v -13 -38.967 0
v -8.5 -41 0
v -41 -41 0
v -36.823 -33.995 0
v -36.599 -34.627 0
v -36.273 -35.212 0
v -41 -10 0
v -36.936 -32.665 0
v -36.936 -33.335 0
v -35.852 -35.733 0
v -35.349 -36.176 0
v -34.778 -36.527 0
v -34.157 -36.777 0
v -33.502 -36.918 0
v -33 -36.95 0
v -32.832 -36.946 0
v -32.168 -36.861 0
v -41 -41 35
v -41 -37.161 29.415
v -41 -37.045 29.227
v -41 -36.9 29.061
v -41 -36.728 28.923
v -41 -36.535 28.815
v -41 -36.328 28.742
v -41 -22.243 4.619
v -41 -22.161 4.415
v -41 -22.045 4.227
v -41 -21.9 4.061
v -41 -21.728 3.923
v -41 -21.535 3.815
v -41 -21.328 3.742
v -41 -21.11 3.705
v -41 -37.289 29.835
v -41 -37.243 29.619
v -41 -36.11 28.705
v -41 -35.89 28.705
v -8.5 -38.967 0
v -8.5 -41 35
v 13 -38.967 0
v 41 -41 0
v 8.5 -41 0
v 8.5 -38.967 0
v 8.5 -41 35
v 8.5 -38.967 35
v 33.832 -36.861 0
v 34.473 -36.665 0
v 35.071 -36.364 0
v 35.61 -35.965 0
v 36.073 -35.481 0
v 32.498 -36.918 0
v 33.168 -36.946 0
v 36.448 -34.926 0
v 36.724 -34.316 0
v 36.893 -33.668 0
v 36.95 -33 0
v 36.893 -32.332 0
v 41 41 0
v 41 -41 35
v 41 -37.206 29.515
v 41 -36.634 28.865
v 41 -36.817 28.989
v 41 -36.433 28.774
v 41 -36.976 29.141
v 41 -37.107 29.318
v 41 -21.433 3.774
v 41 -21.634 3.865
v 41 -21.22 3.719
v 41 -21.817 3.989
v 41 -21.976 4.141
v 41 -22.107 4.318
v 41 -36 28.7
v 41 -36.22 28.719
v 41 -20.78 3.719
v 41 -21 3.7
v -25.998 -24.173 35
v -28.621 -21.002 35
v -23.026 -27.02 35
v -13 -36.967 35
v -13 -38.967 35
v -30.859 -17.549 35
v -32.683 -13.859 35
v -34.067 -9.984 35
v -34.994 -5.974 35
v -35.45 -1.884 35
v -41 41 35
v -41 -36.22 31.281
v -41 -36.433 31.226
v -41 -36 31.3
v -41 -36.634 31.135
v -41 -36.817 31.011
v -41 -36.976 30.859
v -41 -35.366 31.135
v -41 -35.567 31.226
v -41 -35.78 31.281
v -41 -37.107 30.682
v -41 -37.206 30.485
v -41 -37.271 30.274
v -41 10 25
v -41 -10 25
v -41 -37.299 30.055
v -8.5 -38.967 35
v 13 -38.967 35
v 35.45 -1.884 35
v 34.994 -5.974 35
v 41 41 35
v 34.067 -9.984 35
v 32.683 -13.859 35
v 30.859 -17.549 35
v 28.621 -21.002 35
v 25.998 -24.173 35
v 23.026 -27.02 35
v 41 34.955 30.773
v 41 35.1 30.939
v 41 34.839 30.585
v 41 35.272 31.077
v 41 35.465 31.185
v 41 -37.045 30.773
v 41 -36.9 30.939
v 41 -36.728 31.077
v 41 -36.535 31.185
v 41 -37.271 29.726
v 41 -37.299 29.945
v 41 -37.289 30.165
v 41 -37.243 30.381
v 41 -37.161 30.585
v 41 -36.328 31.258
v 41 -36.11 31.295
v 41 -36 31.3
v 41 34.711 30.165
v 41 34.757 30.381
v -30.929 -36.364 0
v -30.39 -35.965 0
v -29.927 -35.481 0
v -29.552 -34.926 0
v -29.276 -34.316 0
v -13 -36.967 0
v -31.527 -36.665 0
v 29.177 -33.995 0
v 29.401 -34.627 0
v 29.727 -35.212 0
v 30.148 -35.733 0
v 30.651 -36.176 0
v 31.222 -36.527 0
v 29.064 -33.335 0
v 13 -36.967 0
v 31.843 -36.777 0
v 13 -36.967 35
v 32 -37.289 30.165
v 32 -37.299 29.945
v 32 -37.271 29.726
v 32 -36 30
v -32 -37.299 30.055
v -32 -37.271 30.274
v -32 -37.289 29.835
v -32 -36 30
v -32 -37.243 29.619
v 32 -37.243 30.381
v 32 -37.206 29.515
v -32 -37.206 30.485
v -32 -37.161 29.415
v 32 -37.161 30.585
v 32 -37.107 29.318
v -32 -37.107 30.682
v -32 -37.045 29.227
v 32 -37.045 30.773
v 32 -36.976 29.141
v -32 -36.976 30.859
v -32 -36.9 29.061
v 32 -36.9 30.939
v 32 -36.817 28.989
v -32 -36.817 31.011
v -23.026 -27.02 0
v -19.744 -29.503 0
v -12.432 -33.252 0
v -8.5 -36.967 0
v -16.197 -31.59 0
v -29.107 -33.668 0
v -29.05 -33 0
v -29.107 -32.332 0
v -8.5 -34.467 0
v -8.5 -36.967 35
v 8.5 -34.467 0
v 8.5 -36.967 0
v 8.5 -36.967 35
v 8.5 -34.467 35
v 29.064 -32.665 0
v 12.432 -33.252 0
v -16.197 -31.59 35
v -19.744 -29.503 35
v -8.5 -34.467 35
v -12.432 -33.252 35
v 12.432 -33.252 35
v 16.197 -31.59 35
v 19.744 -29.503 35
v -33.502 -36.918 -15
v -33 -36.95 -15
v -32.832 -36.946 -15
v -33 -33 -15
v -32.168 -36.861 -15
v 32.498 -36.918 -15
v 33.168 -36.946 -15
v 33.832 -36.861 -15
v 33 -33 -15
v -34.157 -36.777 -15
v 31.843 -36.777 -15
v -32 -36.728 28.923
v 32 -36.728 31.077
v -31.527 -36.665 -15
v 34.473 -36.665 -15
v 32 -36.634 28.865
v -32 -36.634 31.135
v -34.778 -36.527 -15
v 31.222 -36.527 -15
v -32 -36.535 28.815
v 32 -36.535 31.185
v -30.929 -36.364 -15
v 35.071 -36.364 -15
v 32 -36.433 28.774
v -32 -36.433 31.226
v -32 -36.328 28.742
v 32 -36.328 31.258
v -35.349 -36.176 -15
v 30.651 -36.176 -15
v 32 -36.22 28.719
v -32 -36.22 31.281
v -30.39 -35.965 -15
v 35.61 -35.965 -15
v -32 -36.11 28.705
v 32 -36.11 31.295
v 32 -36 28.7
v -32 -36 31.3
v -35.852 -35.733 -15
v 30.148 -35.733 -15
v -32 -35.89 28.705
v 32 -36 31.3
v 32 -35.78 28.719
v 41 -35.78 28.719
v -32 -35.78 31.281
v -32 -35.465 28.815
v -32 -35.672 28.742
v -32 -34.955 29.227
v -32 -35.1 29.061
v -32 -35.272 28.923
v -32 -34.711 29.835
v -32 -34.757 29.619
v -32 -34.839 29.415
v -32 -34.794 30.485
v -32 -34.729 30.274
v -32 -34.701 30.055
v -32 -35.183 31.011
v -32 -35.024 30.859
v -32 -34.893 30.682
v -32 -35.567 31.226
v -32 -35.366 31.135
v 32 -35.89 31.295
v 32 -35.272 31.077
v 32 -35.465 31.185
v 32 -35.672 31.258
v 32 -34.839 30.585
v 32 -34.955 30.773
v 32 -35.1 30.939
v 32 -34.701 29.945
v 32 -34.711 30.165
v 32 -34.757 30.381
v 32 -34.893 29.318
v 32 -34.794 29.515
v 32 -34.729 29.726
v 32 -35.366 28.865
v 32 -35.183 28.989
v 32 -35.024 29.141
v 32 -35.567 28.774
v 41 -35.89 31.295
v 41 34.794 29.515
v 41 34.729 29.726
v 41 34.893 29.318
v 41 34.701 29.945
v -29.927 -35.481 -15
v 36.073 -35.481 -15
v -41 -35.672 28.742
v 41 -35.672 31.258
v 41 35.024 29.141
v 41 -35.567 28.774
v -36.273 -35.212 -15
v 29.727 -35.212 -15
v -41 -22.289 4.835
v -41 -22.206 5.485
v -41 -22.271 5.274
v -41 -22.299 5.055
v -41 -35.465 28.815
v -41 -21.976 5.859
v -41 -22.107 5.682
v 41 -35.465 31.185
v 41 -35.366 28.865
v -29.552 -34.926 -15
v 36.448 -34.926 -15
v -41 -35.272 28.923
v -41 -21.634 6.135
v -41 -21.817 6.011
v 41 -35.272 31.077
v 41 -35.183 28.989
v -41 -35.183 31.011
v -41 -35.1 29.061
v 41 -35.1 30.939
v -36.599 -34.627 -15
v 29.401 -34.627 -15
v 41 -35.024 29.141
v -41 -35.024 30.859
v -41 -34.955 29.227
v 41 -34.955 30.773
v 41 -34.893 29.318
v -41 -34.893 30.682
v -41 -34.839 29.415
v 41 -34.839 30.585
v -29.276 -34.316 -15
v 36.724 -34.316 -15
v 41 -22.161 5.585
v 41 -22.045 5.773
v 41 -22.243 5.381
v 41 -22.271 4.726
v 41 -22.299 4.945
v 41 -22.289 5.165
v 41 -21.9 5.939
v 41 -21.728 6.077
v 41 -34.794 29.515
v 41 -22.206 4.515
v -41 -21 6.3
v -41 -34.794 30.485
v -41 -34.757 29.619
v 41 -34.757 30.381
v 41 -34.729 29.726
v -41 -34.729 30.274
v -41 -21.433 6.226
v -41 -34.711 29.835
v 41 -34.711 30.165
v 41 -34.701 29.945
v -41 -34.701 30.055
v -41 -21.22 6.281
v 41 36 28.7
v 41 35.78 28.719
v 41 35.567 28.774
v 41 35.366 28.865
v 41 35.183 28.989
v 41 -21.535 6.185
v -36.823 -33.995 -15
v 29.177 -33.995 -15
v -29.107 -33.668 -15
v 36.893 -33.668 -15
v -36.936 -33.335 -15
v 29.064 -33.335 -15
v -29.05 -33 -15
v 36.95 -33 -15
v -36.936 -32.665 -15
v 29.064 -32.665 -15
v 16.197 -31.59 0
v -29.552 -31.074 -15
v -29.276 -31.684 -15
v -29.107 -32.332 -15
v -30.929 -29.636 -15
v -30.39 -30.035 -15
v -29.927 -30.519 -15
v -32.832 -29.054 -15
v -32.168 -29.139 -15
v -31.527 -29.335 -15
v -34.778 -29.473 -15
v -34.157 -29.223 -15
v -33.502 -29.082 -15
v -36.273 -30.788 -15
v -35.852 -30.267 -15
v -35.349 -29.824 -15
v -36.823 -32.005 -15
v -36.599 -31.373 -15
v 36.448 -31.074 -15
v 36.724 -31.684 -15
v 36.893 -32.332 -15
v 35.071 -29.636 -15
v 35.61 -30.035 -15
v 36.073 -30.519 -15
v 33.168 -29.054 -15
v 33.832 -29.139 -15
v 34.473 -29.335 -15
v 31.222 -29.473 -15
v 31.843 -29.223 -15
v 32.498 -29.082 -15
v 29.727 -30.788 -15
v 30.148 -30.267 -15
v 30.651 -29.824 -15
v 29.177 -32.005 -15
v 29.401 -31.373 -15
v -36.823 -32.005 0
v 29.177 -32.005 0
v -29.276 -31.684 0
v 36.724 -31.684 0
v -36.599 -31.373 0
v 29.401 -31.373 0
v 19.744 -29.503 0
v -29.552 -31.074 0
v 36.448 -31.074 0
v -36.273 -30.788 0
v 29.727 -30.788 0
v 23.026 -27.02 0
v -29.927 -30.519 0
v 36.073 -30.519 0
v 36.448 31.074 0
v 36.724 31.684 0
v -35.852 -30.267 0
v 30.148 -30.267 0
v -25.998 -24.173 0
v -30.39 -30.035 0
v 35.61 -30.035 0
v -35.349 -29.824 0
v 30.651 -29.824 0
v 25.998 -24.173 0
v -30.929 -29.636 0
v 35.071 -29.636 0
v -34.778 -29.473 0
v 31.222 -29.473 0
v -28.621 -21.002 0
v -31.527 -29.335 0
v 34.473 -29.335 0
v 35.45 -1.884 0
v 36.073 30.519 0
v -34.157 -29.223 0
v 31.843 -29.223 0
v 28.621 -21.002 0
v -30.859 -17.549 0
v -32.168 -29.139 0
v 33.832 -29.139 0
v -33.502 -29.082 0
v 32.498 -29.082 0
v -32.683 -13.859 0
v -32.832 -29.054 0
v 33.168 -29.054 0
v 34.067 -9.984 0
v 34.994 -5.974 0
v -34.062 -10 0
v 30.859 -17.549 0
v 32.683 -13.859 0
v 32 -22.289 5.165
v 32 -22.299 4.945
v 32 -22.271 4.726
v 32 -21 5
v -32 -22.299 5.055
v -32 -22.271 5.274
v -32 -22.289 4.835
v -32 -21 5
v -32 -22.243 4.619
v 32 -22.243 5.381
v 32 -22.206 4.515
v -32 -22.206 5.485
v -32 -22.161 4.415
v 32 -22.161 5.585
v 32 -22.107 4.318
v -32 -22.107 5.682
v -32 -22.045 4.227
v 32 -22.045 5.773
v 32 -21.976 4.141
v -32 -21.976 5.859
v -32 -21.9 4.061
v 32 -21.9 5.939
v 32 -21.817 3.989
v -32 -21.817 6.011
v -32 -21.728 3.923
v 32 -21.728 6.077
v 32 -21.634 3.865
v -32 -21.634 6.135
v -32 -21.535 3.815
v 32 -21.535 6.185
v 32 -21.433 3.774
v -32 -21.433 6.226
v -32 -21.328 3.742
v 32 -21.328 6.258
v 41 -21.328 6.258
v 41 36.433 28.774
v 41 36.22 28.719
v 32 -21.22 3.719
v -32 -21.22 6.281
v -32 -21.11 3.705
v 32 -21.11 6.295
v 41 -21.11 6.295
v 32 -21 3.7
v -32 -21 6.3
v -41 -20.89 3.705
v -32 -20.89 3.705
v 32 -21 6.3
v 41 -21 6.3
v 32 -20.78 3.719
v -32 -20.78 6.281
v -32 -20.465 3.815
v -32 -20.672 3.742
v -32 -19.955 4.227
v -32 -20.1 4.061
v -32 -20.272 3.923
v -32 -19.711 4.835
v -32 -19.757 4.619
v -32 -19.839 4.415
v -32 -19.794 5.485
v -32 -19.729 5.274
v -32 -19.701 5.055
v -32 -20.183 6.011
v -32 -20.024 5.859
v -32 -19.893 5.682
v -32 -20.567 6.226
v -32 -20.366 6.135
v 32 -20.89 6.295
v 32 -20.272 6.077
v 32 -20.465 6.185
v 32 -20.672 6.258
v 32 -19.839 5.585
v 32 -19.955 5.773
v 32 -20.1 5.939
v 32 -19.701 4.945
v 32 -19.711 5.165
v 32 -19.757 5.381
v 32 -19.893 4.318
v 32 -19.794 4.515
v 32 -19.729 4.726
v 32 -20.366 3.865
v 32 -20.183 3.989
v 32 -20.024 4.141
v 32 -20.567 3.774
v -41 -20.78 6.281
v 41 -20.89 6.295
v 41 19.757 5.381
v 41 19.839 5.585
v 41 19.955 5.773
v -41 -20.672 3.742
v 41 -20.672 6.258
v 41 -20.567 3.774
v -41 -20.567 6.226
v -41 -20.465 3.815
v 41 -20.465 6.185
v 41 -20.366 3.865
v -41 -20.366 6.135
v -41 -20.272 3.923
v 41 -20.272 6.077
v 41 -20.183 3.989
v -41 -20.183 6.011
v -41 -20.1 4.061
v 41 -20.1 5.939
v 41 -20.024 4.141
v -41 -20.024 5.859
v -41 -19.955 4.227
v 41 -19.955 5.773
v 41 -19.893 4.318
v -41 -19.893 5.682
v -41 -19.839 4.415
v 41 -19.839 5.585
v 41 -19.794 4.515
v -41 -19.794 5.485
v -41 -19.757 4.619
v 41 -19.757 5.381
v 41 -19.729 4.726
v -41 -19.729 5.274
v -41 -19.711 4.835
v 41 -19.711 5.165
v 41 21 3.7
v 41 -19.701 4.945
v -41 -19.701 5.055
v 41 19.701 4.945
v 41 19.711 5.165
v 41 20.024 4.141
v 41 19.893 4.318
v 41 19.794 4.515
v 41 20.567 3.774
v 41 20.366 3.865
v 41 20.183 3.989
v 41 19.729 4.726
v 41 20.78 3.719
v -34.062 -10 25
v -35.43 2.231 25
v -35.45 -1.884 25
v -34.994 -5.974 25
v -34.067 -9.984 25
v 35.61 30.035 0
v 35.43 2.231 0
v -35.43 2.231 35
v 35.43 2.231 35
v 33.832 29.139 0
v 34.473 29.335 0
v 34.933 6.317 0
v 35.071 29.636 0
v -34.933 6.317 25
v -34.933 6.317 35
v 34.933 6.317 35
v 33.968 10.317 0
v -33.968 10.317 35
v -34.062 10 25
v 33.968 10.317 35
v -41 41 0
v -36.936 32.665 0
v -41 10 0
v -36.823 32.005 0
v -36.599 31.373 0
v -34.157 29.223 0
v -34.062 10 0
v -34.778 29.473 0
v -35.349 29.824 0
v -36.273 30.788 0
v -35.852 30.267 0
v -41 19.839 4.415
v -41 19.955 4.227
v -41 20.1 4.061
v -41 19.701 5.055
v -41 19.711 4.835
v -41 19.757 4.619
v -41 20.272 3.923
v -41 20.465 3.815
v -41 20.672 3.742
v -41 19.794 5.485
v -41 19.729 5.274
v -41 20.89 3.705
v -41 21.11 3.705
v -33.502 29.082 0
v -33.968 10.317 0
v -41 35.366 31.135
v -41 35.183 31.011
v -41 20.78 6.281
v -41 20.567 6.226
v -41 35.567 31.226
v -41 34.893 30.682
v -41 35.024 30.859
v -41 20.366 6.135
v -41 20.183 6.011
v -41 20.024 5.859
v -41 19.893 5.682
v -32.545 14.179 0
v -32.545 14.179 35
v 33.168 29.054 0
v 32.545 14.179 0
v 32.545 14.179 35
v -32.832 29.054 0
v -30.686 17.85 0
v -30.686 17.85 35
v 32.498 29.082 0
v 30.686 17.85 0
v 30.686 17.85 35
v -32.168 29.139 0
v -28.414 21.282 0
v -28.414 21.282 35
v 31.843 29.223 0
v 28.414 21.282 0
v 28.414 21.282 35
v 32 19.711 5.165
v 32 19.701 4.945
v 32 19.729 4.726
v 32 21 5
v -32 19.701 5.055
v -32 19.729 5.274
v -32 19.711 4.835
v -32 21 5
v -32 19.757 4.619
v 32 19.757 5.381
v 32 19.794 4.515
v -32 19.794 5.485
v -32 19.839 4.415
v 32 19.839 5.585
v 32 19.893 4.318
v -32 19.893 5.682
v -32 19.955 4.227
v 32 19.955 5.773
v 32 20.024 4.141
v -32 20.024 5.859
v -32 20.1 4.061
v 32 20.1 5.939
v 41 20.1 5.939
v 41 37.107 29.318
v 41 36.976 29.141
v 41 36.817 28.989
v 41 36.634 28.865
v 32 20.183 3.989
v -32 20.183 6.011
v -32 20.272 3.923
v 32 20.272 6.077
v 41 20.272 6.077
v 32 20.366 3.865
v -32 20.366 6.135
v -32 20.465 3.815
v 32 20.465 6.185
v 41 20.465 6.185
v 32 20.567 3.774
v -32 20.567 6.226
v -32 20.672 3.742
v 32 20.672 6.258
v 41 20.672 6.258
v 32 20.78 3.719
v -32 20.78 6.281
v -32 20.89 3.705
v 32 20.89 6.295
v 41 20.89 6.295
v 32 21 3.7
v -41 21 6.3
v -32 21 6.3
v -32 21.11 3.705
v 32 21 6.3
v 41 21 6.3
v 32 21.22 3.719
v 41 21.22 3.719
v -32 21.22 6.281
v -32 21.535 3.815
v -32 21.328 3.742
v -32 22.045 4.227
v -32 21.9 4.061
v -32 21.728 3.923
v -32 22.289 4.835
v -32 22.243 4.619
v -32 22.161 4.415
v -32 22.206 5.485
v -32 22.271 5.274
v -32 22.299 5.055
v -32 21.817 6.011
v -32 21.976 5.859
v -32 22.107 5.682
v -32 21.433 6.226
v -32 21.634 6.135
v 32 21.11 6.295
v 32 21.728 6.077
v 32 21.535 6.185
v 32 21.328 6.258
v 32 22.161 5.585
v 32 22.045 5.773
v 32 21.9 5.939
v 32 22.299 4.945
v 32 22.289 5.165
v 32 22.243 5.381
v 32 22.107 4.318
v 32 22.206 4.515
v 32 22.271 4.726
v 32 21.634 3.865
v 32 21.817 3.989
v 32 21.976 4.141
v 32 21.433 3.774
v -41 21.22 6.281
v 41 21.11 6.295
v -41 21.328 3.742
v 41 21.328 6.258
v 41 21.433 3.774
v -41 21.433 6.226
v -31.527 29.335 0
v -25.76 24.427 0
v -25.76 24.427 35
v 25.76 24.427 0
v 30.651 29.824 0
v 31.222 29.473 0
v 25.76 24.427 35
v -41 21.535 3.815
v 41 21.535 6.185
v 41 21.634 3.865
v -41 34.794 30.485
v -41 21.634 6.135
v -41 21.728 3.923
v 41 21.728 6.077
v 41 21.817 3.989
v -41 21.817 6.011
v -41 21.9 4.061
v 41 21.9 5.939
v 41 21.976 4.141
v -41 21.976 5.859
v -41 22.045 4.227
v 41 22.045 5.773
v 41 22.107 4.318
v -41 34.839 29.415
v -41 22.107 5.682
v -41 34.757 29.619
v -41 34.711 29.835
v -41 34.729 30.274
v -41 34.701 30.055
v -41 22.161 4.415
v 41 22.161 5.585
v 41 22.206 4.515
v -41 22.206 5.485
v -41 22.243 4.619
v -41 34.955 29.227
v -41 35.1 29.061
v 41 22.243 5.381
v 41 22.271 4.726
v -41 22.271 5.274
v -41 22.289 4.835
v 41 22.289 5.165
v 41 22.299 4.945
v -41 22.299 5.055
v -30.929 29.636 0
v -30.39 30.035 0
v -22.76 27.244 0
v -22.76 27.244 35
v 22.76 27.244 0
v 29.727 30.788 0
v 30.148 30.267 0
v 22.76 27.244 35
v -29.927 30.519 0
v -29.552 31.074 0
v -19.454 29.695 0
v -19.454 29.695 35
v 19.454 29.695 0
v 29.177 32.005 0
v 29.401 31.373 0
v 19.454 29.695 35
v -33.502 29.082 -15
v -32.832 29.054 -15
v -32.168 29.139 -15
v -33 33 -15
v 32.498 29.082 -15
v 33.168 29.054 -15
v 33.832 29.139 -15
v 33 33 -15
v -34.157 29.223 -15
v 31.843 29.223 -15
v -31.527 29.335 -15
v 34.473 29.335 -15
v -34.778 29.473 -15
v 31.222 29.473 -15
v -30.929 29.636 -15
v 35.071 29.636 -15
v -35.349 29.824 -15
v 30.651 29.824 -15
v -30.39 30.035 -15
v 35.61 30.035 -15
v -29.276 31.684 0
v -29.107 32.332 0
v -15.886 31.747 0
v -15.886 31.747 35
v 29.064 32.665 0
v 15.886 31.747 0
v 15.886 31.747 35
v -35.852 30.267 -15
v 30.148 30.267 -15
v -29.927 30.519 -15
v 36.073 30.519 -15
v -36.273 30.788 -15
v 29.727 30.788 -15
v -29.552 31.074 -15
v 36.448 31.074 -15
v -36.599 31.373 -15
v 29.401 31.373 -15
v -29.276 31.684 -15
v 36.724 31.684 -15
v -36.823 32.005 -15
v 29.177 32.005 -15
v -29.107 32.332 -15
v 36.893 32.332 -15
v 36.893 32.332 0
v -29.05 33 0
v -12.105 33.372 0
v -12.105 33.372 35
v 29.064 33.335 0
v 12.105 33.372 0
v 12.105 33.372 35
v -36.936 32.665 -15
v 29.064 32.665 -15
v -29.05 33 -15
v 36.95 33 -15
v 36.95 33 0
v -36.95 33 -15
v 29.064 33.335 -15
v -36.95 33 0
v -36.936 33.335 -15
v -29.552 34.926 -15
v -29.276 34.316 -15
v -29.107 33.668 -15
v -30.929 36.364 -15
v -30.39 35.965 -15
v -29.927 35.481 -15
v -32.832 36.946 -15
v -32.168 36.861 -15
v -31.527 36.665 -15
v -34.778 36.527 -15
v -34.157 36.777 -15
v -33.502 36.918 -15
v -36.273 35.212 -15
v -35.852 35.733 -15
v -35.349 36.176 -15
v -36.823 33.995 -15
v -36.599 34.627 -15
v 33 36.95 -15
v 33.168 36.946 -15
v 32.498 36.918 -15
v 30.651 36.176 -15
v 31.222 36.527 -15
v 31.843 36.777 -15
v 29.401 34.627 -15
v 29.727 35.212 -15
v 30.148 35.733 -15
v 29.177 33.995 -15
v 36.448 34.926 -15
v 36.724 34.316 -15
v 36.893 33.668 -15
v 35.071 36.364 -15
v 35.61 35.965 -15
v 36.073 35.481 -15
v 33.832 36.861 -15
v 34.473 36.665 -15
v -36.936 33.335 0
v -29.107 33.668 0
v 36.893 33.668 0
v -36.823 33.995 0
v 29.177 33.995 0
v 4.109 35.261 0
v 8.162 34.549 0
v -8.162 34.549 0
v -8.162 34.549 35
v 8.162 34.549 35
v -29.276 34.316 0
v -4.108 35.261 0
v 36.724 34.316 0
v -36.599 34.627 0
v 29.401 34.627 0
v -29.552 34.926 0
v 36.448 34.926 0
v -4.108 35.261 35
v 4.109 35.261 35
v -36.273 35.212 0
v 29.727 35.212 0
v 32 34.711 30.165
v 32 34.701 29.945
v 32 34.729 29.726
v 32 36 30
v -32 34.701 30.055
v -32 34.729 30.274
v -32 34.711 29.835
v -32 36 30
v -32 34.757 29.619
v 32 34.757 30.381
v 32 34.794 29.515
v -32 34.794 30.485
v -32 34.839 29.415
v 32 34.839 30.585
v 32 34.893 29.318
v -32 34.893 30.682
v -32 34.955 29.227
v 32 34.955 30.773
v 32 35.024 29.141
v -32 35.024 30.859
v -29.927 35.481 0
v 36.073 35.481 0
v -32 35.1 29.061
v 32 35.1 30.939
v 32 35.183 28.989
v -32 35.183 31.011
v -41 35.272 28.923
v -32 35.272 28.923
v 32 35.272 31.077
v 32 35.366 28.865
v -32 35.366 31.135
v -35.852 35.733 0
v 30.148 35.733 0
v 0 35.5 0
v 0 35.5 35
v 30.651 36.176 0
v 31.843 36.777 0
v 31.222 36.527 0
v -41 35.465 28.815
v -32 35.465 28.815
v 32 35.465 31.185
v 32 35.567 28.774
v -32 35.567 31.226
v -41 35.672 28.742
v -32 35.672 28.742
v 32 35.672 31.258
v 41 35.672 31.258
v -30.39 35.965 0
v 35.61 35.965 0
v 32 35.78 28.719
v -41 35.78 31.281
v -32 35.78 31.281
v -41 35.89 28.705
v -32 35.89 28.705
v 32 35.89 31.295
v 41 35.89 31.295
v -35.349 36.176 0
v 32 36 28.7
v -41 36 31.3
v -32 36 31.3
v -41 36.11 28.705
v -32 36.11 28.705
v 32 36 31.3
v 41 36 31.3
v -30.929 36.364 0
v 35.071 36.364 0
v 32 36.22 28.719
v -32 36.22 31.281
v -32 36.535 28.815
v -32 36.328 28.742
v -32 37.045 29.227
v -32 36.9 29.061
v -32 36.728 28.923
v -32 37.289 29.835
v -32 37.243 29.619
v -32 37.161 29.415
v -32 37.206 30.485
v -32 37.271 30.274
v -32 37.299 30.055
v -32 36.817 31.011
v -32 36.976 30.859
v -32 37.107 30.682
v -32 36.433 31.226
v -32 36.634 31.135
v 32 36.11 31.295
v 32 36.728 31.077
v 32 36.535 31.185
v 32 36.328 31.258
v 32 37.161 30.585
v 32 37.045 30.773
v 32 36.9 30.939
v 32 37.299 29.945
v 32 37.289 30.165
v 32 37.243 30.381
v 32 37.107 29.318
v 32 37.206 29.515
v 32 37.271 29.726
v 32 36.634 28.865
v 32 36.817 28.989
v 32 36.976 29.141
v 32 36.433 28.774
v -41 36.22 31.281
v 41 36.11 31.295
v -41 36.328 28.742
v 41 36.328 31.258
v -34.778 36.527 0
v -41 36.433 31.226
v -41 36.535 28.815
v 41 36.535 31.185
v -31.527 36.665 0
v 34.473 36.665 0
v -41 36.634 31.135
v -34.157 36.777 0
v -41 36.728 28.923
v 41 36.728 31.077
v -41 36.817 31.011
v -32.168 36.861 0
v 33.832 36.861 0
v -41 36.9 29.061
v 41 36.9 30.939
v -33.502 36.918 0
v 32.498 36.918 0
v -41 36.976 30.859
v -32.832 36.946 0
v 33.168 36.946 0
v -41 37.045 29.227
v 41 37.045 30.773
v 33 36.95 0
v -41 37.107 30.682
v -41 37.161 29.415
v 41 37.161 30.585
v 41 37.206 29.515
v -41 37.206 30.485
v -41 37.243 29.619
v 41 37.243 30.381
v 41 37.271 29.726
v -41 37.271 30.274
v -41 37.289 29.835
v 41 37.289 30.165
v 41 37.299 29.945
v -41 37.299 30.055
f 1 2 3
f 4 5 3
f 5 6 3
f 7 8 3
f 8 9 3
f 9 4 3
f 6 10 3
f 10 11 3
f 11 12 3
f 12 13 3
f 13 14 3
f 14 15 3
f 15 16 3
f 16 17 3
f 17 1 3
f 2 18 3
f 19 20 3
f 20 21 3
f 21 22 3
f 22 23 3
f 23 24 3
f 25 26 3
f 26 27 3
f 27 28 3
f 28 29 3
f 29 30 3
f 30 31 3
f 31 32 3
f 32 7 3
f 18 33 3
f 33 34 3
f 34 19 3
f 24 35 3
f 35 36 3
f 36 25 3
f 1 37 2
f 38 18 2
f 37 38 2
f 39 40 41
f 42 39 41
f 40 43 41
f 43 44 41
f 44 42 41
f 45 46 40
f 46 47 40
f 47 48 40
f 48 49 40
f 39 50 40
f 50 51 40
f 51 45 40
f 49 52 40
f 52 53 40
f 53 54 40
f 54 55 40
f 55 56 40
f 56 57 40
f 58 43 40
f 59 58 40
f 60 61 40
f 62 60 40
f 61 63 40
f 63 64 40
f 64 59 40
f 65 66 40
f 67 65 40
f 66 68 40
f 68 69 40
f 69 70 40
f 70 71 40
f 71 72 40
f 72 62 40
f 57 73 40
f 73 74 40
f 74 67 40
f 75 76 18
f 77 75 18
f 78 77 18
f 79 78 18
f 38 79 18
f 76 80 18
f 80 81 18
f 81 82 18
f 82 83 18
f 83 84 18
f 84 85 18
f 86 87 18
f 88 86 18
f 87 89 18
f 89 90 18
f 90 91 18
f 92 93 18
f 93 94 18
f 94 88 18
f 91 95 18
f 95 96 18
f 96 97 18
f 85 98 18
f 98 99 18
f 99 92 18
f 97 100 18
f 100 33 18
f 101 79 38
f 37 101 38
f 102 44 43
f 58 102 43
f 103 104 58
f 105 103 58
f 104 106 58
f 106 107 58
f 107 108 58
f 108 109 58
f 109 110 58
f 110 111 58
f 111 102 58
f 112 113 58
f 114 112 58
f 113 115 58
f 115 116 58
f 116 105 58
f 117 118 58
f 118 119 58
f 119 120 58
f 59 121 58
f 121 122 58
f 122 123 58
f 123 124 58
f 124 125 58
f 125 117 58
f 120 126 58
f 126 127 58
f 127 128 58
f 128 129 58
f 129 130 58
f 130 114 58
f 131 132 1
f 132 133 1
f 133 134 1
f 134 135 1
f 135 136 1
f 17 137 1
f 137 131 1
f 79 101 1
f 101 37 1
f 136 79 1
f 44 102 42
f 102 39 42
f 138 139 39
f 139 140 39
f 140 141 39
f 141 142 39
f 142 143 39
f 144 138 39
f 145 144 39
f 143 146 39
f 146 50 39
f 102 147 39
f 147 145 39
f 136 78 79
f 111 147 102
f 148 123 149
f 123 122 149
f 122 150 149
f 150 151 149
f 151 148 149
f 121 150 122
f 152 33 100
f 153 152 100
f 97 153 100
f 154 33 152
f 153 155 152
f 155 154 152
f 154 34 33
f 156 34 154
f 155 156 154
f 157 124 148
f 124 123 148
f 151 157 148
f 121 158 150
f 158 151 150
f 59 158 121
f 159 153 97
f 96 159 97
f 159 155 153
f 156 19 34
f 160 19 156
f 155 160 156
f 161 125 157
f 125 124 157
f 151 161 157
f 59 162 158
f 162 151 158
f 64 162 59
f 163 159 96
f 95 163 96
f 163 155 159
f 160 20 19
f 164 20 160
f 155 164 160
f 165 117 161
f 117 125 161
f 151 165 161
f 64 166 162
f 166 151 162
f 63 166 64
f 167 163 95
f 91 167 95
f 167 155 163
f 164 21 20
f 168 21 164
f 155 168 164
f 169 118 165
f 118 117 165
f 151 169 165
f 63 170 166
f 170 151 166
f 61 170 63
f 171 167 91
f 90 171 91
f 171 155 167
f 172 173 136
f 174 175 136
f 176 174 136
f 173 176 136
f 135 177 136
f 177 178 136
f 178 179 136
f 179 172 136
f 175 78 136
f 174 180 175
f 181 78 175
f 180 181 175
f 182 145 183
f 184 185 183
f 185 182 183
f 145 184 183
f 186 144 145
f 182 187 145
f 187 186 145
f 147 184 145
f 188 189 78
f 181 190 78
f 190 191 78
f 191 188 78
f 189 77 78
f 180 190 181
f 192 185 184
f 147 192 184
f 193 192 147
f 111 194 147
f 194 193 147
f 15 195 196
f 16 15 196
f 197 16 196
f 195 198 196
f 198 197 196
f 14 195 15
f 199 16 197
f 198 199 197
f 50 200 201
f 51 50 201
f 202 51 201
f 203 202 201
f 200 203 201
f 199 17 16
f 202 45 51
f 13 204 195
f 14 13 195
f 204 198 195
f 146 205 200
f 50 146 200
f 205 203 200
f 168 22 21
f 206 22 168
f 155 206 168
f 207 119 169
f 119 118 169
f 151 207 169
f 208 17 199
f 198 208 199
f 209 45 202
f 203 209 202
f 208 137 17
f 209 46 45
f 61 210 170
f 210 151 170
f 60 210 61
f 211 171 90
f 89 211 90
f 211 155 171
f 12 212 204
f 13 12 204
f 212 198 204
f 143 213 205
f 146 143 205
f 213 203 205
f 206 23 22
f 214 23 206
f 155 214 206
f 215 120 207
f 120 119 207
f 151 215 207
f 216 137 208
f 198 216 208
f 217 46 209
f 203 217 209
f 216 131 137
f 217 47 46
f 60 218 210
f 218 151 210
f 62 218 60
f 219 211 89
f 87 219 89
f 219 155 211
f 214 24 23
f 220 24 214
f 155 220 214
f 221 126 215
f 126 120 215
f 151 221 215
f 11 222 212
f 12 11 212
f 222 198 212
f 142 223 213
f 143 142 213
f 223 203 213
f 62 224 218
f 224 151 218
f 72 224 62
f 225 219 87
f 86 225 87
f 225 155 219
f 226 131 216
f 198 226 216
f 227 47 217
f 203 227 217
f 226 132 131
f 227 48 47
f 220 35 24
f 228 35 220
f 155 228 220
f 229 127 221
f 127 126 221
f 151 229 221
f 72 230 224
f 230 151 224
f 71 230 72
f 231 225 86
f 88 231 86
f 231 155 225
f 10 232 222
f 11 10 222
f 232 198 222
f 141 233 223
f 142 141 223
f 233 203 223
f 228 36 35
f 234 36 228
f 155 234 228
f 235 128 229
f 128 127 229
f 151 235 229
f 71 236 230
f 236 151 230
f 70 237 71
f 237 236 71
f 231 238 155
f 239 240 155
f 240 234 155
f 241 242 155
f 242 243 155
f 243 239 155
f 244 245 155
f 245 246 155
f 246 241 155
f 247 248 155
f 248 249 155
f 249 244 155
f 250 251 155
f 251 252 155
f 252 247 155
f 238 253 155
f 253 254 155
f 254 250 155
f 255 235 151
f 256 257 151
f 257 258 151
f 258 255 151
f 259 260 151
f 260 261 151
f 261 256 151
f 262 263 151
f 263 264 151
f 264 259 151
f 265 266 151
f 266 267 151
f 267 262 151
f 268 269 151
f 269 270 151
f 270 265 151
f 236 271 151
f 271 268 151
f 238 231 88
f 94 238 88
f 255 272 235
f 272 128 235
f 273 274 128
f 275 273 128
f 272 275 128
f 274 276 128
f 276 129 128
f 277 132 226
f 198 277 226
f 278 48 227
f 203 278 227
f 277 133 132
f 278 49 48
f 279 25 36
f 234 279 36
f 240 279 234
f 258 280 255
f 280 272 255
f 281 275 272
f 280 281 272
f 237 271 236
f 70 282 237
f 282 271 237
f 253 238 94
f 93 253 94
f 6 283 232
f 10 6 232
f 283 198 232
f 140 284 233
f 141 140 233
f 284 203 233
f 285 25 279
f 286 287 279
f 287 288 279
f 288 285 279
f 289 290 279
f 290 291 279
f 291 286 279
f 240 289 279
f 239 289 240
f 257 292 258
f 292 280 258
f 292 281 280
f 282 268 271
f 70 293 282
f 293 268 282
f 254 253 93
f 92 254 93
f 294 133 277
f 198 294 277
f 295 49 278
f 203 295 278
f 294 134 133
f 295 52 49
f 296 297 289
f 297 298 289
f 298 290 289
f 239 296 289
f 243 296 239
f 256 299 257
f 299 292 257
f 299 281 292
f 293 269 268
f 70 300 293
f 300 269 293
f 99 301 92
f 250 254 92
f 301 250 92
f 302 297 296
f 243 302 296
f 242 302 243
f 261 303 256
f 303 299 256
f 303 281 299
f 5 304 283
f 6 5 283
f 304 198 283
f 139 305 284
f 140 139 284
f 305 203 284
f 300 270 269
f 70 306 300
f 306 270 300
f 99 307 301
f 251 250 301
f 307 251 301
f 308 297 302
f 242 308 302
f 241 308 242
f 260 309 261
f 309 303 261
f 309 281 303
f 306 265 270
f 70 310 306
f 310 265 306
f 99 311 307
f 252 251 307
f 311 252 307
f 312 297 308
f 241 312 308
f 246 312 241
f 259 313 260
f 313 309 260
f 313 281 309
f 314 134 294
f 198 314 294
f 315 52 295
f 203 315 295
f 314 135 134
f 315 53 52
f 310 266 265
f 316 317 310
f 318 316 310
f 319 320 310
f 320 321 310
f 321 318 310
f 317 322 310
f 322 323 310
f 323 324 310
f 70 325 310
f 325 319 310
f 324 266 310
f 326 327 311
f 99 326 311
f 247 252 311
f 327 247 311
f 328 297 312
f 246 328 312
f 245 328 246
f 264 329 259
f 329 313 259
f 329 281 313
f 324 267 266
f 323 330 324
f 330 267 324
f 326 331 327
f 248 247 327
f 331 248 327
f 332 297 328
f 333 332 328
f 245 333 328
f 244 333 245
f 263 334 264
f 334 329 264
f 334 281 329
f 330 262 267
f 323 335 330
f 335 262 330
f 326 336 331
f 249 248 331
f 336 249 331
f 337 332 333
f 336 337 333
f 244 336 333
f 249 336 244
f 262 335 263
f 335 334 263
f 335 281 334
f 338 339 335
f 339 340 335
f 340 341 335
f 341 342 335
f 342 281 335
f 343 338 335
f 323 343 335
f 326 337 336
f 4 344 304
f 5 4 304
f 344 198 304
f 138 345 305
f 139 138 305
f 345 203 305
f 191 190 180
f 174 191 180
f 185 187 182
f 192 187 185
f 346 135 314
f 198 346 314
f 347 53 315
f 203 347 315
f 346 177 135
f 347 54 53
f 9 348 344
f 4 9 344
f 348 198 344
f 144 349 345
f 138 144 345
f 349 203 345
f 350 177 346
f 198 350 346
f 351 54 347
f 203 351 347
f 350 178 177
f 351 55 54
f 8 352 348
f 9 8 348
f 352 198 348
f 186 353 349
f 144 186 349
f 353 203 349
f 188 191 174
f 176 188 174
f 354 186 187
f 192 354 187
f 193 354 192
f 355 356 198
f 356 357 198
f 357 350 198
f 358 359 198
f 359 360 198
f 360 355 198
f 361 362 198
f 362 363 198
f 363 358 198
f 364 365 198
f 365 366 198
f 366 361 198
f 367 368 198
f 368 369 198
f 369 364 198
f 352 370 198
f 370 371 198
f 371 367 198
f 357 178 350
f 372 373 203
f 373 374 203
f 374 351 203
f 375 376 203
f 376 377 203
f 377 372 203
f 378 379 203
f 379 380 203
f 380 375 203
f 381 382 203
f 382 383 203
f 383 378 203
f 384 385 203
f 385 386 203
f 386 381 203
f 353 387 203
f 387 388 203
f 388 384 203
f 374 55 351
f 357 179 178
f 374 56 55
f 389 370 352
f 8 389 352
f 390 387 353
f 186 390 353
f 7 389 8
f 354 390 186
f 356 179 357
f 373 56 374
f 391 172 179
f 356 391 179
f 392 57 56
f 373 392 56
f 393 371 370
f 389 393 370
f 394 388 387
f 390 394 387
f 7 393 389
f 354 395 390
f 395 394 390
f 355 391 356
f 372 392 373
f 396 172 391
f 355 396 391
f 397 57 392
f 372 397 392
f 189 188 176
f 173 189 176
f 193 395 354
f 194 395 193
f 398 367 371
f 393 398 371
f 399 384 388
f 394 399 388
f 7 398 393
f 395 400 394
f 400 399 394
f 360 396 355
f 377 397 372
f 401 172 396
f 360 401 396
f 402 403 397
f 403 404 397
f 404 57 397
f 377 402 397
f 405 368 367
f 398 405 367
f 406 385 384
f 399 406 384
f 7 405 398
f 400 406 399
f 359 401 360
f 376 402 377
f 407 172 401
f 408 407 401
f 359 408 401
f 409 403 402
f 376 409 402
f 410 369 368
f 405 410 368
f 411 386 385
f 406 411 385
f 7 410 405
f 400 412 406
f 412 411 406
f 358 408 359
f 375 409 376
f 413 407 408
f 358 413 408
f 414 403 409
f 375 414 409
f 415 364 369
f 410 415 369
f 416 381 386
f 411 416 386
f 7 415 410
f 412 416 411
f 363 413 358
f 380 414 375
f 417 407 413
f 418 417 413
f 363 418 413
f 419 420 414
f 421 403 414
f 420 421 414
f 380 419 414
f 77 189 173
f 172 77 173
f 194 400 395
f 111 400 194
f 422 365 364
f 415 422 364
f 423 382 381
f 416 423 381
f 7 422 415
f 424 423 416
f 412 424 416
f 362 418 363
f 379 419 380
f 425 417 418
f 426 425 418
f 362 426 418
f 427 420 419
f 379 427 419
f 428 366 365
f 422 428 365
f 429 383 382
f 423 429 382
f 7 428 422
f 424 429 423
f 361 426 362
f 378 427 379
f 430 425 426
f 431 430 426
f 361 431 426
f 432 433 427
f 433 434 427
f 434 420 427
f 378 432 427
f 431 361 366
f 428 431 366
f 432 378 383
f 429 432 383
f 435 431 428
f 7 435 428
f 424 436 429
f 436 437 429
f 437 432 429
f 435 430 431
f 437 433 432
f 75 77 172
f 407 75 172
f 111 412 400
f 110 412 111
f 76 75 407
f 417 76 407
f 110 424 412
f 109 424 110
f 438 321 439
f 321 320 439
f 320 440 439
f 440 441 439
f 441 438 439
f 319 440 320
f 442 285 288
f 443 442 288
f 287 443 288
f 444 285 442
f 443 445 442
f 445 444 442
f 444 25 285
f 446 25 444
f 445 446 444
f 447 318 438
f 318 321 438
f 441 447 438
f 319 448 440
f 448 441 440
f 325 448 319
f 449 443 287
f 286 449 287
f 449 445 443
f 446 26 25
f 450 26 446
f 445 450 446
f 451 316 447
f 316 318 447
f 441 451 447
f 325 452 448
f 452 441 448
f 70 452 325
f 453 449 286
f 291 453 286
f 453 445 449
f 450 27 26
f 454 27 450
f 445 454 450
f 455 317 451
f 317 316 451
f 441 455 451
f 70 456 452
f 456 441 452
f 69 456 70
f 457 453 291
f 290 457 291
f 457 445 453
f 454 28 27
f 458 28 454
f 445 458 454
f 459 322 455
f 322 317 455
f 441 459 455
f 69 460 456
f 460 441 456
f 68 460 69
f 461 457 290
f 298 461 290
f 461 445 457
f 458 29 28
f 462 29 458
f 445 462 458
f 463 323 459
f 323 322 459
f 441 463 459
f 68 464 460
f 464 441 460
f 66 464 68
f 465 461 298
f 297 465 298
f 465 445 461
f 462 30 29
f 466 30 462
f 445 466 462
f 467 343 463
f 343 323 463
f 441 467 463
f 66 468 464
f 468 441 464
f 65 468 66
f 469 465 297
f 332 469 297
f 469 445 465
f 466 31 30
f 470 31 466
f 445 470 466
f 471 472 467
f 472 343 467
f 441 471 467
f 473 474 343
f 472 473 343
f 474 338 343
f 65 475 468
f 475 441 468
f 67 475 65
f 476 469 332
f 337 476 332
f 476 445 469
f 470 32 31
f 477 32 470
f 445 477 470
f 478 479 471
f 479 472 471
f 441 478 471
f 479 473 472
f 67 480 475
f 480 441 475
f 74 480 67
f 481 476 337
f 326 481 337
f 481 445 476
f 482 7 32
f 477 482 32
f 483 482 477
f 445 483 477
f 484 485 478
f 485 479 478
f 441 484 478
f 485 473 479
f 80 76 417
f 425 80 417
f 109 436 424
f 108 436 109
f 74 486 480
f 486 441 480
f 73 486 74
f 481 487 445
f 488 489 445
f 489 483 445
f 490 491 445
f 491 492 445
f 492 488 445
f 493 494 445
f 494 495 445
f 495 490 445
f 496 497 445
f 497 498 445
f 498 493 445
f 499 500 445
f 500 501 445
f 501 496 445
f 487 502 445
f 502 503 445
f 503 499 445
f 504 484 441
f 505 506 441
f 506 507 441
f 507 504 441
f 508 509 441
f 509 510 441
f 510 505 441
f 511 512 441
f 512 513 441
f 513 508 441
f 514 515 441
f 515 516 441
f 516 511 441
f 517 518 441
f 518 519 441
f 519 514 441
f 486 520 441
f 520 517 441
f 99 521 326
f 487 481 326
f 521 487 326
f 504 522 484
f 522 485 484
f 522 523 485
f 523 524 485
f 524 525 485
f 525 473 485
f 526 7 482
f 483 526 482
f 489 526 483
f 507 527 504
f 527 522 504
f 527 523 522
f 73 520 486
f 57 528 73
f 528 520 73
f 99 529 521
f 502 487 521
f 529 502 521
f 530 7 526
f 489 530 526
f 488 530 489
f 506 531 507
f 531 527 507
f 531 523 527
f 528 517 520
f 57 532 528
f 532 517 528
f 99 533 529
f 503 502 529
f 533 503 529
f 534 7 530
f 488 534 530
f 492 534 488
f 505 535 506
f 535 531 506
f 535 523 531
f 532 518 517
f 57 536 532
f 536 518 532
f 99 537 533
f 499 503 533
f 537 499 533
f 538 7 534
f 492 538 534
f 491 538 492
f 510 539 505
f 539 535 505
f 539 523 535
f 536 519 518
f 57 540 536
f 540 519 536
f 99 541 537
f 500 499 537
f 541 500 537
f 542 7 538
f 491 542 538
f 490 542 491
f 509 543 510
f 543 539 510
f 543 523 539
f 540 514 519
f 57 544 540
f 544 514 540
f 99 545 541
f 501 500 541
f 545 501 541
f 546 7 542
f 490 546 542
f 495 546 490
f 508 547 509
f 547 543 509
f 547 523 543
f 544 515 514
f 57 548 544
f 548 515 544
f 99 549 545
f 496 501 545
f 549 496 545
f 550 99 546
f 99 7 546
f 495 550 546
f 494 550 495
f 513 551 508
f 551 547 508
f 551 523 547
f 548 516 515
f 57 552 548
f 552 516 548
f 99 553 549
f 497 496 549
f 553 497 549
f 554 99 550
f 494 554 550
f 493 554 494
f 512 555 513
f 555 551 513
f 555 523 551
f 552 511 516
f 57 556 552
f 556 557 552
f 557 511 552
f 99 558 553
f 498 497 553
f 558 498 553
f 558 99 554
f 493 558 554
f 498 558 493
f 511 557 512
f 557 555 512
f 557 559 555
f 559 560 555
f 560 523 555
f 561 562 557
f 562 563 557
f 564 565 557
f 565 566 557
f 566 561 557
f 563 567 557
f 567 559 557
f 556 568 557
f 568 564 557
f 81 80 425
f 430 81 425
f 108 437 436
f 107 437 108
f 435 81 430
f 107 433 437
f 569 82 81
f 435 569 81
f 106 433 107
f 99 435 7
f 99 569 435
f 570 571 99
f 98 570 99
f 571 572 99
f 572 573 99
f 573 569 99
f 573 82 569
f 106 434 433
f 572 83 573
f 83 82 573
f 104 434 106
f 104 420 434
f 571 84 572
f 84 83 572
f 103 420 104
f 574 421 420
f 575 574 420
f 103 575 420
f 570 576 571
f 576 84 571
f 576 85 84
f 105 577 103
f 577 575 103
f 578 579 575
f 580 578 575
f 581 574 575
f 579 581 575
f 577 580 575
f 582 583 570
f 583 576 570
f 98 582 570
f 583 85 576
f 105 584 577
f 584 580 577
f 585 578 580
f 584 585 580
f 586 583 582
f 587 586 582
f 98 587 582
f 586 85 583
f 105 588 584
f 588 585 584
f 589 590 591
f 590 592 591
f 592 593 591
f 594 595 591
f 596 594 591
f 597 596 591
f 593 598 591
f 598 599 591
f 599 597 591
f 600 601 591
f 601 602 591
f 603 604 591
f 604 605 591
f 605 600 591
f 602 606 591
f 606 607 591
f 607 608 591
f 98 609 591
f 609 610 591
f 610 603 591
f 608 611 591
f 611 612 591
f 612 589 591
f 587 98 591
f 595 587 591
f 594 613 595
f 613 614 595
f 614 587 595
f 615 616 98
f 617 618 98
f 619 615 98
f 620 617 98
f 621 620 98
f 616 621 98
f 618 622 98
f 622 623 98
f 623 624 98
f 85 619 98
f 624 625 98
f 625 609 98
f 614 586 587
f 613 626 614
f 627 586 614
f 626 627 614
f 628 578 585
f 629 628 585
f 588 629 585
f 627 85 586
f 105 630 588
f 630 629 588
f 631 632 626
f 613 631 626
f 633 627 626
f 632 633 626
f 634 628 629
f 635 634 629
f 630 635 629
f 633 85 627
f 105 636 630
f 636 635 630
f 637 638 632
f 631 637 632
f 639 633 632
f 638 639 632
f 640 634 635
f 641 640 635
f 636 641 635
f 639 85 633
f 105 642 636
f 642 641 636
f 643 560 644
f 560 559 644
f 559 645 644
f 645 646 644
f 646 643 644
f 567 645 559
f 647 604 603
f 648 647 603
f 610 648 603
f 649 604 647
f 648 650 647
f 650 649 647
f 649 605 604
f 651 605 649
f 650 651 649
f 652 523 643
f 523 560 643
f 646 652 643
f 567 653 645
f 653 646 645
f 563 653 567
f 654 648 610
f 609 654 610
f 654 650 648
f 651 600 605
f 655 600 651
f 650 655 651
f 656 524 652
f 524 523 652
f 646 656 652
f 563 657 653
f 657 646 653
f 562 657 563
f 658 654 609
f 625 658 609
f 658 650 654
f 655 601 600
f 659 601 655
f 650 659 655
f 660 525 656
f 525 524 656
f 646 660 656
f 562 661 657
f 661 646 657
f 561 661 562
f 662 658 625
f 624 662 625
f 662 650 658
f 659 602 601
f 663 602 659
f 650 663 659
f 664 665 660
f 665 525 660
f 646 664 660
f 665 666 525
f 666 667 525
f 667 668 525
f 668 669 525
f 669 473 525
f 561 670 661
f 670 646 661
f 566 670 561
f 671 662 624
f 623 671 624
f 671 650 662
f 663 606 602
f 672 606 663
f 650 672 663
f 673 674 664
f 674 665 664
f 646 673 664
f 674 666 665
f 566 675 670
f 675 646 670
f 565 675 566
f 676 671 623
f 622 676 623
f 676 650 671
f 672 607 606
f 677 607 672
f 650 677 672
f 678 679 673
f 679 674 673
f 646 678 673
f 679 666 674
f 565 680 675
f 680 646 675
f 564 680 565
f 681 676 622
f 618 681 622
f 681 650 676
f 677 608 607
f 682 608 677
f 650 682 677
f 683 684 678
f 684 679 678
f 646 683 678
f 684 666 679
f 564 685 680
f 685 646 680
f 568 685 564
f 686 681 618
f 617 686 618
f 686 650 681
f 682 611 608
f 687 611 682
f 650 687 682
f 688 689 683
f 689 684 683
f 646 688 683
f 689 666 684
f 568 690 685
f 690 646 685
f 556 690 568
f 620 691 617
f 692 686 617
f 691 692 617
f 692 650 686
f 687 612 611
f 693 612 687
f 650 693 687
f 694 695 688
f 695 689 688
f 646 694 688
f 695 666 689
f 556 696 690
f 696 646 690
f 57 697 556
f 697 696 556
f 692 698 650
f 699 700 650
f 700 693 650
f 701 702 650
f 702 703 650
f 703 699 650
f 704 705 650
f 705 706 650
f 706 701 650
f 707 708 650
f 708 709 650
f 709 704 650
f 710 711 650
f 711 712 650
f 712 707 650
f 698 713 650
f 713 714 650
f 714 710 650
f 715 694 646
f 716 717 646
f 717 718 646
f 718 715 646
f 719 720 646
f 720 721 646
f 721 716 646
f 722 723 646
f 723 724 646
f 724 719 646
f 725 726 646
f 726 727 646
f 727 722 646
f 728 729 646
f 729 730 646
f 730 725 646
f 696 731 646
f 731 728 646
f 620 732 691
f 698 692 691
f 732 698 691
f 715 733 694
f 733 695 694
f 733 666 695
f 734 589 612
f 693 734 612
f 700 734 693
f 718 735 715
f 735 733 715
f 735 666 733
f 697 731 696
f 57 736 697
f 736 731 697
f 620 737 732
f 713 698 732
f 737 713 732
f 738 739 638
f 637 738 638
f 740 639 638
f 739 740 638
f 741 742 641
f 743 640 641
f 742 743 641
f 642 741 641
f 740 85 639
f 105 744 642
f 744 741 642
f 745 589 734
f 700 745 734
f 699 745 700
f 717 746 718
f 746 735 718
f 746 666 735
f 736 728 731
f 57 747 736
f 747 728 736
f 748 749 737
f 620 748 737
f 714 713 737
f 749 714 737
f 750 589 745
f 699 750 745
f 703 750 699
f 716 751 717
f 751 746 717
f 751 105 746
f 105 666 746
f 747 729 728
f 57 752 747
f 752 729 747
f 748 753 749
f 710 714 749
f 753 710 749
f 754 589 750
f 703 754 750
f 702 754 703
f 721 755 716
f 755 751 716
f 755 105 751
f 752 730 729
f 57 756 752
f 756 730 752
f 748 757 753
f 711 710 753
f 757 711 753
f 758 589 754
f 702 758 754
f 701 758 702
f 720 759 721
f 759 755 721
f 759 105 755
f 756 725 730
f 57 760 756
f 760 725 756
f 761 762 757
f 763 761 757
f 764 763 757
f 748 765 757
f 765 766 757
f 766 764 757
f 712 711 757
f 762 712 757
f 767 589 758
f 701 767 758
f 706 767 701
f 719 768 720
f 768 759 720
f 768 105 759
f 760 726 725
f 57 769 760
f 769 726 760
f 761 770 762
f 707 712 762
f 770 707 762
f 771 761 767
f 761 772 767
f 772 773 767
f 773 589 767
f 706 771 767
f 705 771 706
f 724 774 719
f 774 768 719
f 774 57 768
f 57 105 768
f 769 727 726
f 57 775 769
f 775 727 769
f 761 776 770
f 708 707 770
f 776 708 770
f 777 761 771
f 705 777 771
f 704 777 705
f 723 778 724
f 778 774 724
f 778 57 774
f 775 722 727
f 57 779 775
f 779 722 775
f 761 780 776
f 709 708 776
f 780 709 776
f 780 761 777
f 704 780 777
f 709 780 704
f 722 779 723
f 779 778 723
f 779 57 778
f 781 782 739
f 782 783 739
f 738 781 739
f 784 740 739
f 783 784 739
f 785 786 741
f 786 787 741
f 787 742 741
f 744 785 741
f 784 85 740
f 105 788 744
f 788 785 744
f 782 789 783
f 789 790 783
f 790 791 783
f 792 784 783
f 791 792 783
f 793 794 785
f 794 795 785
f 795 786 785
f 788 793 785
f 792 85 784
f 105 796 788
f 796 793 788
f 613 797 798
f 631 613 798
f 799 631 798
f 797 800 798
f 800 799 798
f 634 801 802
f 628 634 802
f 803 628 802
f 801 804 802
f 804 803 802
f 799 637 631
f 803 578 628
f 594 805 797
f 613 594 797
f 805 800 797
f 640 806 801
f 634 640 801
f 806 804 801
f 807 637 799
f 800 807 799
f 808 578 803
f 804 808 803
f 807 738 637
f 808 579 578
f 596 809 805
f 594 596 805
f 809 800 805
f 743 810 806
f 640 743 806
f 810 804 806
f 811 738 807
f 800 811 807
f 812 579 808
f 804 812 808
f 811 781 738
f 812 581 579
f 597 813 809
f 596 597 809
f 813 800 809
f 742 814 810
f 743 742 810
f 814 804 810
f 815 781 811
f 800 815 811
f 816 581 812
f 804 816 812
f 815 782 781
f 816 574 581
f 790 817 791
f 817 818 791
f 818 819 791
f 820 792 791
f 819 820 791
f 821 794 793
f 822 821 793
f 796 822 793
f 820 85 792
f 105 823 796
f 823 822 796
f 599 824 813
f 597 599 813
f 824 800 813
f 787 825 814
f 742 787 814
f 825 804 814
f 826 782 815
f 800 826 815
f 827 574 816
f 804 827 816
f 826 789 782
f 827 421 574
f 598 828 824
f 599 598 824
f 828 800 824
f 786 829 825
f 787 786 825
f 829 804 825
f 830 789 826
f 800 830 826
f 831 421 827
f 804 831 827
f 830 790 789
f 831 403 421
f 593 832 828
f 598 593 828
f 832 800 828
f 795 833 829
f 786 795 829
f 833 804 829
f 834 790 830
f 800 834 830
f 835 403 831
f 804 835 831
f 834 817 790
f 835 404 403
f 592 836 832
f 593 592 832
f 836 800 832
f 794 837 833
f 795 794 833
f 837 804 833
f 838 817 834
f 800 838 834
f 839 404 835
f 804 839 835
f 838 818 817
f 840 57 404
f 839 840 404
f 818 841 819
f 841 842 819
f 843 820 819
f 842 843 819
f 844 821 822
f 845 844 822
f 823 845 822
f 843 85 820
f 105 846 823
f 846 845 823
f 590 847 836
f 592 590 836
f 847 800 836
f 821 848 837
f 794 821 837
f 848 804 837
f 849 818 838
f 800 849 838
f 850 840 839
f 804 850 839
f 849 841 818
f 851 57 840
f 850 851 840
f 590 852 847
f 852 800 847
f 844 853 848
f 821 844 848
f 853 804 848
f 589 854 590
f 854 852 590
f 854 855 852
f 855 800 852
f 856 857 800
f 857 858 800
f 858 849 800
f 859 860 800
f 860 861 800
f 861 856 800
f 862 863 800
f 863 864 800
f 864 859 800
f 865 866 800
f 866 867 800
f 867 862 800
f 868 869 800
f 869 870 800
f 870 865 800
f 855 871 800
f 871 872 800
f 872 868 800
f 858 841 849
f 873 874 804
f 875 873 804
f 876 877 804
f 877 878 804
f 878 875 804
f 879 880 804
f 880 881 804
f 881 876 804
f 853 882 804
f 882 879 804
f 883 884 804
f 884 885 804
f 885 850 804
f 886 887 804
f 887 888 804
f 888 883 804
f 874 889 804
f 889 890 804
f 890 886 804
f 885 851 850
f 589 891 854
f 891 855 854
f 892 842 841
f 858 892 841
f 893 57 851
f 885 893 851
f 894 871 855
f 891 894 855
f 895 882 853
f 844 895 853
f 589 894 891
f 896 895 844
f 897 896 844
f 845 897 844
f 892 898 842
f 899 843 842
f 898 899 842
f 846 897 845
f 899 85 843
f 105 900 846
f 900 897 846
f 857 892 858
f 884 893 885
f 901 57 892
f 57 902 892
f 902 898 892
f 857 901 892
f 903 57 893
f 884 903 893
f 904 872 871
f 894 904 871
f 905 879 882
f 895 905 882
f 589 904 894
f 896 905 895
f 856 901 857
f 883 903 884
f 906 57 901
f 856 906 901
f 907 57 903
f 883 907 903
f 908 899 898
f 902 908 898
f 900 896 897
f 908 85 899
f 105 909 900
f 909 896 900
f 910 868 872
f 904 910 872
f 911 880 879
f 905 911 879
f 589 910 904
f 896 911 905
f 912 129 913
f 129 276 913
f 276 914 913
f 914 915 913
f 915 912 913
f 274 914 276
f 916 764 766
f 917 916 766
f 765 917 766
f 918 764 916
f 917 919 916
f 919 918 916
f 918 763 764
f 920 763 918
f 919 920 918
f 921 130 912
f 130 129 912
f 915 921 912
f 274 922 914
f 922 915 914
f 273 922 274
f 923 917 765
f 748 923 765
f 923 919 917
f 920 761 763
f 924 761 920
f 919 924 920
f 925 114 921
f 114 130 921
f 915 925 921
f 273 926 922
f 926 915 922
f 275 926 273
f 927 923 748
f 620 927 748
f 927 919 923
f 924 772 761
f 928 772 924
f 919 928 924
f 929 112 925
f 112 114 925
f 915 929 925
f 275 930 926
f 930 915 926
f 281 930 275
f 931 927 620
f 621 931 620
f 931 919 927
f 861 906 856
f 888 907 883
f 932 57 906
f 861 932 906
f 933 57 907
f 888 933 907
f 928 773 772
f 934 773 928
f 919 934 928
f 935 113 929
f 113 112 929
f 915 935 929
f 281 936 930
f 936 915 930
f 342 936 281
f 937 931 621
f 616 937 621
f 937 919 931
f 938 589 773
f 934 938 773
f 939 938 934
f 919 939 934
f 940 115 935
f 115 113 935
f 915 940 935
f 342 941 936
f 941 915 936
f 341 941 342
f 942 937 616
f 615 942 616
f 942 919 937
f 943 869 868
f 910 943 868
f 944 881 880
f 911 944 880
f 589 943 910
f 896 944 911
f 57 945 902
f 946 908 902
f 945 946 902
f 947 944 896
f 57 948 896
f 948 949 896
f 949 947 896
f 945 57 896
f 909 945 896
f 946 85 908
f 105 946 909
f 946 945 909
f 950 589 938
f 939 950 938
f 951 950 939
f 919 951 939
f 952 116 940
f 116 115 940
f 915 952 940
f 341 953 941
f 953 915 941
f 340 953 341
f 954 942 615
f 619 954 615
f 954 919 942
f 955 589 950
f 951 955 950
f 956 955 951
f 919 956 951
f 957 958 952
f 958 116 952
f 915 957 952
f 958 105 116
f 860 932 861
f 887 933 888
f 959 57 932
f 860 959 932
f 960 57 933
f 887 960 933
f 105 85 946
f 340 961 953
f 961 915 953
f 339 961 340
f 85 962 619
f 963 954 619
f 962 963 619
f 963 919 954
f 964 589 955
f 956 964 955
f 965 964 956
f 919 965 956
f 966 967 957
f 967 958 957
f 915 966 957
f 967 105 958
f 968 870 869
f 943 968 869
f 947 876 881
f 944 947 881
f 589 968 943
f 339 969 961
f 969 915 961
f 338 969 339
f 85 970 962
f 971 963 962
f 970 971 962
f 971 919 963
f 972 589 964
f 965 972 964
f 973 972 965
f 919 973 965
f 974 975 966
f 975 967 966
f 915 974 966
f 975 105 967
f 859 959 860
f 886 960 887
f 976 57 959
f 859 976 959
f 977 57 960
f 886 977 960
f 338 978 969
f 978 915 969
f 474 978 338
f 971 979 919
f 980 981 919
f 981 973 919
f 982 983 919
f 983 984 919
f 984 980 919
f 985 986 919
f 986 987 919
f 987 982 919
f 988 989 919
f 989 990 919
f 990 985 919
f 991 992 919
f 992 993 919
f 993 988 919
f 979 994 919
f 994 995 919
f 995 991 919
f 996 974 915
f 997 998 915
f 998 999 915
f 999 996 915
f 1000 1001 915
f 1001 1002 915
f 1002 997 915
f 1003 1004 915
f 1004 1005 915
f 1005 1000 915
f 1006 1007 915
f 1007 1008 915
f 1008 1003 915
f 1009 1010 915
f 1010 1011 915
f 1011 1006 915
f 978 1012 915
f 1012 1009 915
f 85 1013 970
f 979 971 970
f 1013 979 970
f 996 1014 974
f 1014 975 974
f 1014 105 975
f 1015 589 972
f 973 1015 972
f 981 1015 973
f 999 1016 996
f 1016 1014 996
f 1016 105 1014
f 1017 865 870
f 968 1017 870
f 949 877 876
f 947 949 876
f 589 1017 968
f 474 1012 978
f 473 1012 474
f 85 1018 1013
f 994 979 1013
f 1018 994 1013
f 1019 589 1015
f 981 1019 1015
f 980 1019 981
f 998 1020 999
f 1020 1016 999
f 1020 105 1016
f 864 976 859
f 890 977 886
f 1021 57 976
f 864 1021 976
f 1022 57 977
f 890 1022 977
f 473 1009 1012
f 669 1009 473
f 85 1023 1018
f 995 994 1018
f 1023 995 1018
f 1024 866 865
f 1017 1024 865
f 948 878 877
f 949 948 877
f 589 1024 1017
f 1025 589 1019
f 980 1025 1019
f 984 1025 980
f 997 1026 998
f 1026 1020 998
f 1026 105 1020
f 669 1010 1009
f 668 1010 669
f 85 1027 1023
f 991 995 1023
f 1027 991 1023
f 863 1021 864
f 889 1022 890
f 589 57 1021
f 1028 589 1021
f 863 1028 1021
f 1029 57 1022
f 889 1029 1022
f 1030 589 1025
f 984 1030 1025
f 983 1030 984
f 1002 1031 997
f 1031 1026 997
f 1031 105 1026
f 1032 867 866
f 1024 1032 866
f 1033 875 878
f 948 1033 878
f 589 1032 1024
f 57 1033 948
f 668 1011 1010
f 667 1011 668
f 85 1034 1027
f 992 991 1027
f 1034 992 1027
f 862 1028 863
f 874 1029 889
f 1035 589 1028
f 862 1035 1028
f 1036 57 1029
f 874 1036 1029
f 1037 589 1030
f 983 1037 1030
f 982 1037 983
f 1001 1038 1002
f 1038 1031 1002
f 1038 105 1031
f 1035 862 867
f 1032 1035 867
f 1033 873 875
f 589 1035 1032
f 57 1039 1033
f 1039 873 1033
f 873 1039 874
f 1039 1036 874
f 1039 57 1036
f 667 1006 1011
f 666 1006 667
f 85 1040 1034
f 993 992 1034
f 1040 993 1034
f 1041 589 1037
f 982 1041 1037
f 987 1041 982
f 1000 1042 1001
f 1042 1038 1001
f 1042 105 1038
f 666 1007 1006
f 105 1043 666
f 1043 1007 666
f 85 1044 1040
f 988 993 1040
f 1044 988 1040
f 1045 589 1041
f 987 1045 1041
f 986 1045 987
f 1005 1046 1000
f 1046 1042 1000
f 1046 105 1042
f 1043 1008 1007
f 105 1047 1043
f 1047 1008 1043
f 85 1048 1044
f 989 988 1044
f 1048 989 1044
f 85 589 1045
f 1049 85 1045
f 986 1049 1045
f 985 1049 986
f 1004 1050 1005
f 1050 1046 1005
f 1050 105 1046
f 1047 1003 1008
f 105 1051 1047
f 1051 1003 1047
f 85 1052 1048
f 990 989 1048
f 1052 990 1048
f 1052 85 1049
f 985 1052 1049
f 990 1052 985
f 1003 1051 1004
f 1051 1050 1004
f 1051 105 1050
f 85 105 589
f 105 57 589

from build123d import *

# Parameters (mm, degrees)
SKETCH_1_W               = 82
SKETCH_1_H               = 82
SKETCH_1_R               = 35.5
EXTRUDE_1_DEPTH          = 35
CUT_EXTRUDE_1_REACH      = 79.727
CUT_EXTRUDE_START        = -10
SKETCH_2_W               = 8
SKETCH_2_H               = 20
SKETCH_3_R               = 3.95
EXTRUDE_2_DEPTH          = 15
PATTERN_CIRCULAR_1_COUNT = 4
SKETCH_4_R               = 1.3
CUT_EXTRUDE_2_DEPTH      = 9
MIRROR_4_COPY_1_SKETCH_R = 1.3
MIRROR_4_COPY_1_DEPTH    = 9
MIRROR_4_COPY_2_SKETCH_R = 1.3
MIRROR_4_COPY_2_DEPTH    = 9
CUT_EXTRUDE_3_DEPTH      = 77.56369897


with BuildPart() as part:
    # 草圖1 → 填料-伸長1 (new body)
    with BuildSketch(Plane.XY):
        Rectangle(SKETCH_1_W, SKETCH_1_H)
        Circle(SKETCH_1_R, mode=Mode.SUBTRACT)
    extrude(amount=EXTRUDE_1_DEPTH)

    # 草圖2 → 除料-伸長1 (cut, up to next)
    with BuildSketch(Plane.XY.offset(35).offset(CUT_EXTRUDE_START), mode=Mode.PRIVATE) as cut_extrude_1_sk1:
        with Locations((-37, 0)):
            Rectangle(SKETCH_2_W, SKETCH_2_H)
    cut_extrude_1_tool1 = extrude(cut_extrude_1_sk1.sketch, amount=-CUT_EXTRUDE_1_REACH, mode=Mode.PRIVATE) & part.part
    add(cut_extrude_1_tool1.solids().sort_by_distance((-37, 0, 25))[0], mode=Mode.SUBTRACT)

    # 草圖3 → 填料-伸長2 (add)
    with BuildSketch(Plane(origin=(0, 0, 0), x_dir=(-1, 0, 0), z_dir=(0, 0, -1))):
        with Locations((33, 33)):
            Circle(SKETCH_3_R)
    extrude_2 = extrude(amount=EXTRUDE_2_DEPTH)

    # 環狀複製排列1: 填料-伸長2 ×4 about axis
    pattern_circular_1_axis = Axis((0, 0, 55), (0, 0, -1))
    for i in range(1, PATTERN_CIRCULAR_1_COUNT):
        add(extrude_2.rotate(pattern_circular_1_axis, i * 360 / PATTERN_CIRCULAR_1_COUNT))

    # 草圖4 → 除料-伸長2 (cut)
    with BuildSketch(Plane.ZY.offset(41)):
        with Locations((5, -21)):
            Circle(SKETCH_4_R)
        with Locations((30, -36)):
            Circle(SKETCH_4_R)
    cut_extrude_2 = extrude(amount=-CUT_EXTRUDE_2_DEPTH, mode=Mode.SUBTRACT)

    # 鏡射2: 除料-伸長2 across plane
    add(cut_extrude_2.mirror(Plane.ZX), mode=Mode.SUBTRACT)

    # 鏡射4 copy 1 sketch → 鏡射4 copy 1 (cut)
    with BuildSketch(Plane(origin=(41, 0, 0), x_dir=(0, 0, 1), z_dir=(1, 0, 0))):
        with Locations((5, -21)):
            Circle(MIRROR_4_COPY_1_SKETCH_R)
        with Locations((30, -36)):
            Circle(MIRROR_4_COPY_1_SKETCH_R)
    extrude(amount=-MIRROR_4_COPY_1_DEPTH, mode=Mode.SUBTRACT)

    # 鏡射4 copy 2 sketch → 鏡射4 copy 2 (cut)
    with BuildSketch(Plane(origin=(41, 0, 0), x_dir=(0, 0, 1), z_dir=(1, 0, 0))):
        with Locations((5, 21)):
            Circle(MIRROR_4_COPY_2_SKETCH_R)
        with Locations((30, 36)):
            Circle(MIRROR_4_COPY_2_SKETCH_R)
    extrude(amount=-MIRROR_4_COPY_2_DEPTH, mode=Mode.SUBTRACT)

    # 草圖5 → 除料-伸長3 (cut, through all)
    with BuildSketch(Plane.XY.offset(35)):
        Polygon((-8.5, -36.967375879), (-8.5, -34.467375879), (8.5, -34.467375879), (8.5, -36.967375879), (13, -36.967375879), (13, -38.967375879), (8.5, -38.967375879), (8.5, -41.467375879), (-8.5, -41.467375879), (-8.5, -38.967375879), (-13, -38.967375879), (-13, -36.967375879), align=None)
    extrude(amount=-CUT_EXTRUDE_3_DEPTH, mode=Mode.SUBTRACT)


solid = part.part
